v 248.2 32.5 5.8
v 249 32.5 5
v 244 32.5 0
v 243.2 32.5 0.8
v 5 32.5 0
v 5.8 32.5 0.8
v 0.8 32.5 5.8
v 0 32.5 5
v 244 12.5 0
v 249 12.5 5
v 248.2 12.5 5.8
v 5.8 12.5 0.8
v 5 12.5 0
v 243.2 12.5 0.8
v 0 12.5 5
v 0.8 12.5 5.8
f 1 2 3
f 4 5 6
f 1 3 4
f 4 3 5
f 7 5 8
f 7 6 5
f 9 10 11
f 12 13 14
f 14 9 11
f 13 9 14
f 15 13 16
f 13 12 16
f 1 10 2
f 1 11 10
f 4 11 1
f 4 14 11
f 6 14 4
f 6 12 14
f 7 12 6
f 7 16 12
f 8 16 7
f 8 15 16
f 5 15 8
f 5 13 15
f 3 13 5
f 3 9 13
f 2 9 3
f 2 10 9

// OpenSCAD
//use <C:/Users/rolan/Downloads/Atarian/SF Atarian System.ttf>

thick = 2;
xmax = 250-1;
ymax = 180+thick;
zmax = 39;

edge=5;

//translate([230,15,0])
//    ataritext();

difference(){
    atarilogo();
//    translate([230,17,0])
//        ataritext();
}

module atarilogo() {
    translate([0,32.5,0])
        base_shape_a();
}

module ataritext() {
    linear_extrude(0.3)
        mirror([1,0,0])
        text("ATARI ", 10, "SF Atarian System:style=Regular");

    translate([-30, 0, 0])
    linear_extrude(0.4)
        mirror([1,0,0])
    text("SALLY 2 ", 8, "SF Atarian System:style=Regular");
}

module base_shape_a() {
        rotate([90,0,0]) 
            linear_extrude(20)
                base_shape_2d_a(0.8);
}


module base_shape_2d_a(th) {
    polygon([/* [0, zmax], */ [0, edge], [edge,0], [xmax-edge, 0], [xmax, edge], /*[xmax, zmax],[xmax-th,zmax],*/ [xmax-th, edge+th], [xmax-edge-th, th],[edge+th, th], [th, edge+th]/*,[th, zmax]*/]);
}
